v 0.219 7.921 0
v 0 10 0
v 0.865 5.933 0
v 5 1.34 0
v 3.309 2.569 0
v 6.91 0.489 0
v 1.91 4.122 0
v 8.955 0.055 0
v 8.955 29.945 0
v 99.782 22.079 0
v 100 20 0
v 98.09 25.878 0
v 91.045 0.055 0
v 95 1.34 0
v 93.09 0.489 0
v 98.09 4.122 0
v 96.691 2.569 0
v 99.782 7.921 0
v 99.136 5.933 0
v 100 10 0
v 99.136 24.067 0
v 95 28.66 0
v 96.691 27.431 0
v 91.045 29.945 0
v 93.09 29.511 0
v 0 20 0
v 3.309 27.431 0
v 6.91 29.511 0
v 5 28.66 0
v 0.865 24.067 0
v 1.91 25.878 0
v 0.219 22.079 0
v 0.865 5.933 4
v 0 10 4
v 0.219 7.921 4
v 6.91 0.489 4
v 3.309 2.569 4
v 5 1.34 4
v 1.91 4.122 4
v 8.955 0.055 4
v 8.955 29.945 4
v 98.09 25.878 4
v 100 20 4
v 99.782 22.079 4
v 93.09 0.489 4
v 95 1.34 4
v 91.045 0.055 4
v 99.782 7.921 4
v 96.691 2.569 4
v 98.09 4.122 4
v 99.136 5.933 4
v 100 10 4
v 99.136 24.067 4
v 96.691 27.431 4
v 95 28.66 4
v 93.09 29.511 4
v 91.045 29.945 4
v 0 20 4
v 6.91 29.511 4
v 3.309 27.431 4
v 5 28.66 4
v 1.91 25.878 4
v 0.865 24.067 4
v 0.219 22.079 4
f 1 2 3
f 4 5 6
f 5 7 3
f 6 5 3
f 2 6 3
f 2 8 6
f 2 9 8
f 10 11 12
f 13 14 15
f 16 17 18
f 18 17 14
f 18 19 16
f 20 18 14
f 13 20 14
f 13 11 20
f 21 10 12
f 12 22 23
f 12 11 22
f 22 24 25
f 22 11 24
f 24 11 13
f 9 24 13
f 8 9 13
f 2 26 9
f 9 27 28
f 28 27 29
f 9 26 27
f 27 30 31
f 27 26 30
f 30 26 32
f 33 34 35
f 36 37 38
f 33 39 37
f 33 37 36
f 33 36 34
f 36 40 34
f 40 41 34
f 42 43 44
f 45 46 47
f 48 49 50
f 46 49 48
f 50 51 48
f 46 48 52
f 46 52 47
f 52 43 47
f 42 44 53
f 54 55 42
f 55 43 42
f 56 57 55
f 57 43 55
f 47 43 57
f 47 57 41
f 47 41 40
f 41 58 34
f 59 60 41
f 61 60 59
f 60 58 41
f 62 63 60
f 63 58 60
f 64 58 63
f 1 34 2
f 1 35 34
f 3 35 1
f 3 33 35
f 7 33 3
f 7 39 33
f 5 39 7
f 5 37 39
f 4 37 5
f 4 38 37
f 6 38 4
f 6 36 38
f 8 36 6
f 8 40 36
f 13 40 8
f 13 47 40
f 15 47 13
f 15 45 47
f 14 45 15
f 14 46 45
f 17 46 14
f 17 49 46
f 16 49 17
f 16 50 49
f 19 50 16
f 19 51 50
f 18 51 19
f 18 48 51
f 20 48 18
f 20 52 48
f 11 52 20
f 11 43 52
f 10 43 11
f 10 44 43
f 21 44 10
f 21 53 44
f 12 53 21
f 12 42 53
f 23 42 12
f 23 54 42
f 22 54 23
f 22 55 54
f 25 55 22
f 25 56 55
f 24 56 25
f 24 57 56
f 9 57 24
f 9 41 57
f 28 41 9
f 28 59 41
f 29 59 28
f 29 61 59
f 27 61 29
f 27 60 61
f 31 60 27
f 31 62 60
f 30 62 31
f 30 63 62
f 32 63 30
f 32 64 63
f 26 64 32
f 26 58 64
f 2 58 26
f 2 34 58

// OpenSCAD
module density_test_bar(length, width, h=4, r=10){
    translate([r,r])
    linear_extrude(height=h){
        hull(){
            translate([0,0]) circle(r);
            translate([0,width-2*r]) circle(r);
            translate([length-2*r,0]) circle(r);
            translate([length-2*r,width-2*r]) circle(r);
        }
    }
    *color("red")square([length, width]);
}

*color("red")square([200, 200]);
density_test_bar(100, 30);
